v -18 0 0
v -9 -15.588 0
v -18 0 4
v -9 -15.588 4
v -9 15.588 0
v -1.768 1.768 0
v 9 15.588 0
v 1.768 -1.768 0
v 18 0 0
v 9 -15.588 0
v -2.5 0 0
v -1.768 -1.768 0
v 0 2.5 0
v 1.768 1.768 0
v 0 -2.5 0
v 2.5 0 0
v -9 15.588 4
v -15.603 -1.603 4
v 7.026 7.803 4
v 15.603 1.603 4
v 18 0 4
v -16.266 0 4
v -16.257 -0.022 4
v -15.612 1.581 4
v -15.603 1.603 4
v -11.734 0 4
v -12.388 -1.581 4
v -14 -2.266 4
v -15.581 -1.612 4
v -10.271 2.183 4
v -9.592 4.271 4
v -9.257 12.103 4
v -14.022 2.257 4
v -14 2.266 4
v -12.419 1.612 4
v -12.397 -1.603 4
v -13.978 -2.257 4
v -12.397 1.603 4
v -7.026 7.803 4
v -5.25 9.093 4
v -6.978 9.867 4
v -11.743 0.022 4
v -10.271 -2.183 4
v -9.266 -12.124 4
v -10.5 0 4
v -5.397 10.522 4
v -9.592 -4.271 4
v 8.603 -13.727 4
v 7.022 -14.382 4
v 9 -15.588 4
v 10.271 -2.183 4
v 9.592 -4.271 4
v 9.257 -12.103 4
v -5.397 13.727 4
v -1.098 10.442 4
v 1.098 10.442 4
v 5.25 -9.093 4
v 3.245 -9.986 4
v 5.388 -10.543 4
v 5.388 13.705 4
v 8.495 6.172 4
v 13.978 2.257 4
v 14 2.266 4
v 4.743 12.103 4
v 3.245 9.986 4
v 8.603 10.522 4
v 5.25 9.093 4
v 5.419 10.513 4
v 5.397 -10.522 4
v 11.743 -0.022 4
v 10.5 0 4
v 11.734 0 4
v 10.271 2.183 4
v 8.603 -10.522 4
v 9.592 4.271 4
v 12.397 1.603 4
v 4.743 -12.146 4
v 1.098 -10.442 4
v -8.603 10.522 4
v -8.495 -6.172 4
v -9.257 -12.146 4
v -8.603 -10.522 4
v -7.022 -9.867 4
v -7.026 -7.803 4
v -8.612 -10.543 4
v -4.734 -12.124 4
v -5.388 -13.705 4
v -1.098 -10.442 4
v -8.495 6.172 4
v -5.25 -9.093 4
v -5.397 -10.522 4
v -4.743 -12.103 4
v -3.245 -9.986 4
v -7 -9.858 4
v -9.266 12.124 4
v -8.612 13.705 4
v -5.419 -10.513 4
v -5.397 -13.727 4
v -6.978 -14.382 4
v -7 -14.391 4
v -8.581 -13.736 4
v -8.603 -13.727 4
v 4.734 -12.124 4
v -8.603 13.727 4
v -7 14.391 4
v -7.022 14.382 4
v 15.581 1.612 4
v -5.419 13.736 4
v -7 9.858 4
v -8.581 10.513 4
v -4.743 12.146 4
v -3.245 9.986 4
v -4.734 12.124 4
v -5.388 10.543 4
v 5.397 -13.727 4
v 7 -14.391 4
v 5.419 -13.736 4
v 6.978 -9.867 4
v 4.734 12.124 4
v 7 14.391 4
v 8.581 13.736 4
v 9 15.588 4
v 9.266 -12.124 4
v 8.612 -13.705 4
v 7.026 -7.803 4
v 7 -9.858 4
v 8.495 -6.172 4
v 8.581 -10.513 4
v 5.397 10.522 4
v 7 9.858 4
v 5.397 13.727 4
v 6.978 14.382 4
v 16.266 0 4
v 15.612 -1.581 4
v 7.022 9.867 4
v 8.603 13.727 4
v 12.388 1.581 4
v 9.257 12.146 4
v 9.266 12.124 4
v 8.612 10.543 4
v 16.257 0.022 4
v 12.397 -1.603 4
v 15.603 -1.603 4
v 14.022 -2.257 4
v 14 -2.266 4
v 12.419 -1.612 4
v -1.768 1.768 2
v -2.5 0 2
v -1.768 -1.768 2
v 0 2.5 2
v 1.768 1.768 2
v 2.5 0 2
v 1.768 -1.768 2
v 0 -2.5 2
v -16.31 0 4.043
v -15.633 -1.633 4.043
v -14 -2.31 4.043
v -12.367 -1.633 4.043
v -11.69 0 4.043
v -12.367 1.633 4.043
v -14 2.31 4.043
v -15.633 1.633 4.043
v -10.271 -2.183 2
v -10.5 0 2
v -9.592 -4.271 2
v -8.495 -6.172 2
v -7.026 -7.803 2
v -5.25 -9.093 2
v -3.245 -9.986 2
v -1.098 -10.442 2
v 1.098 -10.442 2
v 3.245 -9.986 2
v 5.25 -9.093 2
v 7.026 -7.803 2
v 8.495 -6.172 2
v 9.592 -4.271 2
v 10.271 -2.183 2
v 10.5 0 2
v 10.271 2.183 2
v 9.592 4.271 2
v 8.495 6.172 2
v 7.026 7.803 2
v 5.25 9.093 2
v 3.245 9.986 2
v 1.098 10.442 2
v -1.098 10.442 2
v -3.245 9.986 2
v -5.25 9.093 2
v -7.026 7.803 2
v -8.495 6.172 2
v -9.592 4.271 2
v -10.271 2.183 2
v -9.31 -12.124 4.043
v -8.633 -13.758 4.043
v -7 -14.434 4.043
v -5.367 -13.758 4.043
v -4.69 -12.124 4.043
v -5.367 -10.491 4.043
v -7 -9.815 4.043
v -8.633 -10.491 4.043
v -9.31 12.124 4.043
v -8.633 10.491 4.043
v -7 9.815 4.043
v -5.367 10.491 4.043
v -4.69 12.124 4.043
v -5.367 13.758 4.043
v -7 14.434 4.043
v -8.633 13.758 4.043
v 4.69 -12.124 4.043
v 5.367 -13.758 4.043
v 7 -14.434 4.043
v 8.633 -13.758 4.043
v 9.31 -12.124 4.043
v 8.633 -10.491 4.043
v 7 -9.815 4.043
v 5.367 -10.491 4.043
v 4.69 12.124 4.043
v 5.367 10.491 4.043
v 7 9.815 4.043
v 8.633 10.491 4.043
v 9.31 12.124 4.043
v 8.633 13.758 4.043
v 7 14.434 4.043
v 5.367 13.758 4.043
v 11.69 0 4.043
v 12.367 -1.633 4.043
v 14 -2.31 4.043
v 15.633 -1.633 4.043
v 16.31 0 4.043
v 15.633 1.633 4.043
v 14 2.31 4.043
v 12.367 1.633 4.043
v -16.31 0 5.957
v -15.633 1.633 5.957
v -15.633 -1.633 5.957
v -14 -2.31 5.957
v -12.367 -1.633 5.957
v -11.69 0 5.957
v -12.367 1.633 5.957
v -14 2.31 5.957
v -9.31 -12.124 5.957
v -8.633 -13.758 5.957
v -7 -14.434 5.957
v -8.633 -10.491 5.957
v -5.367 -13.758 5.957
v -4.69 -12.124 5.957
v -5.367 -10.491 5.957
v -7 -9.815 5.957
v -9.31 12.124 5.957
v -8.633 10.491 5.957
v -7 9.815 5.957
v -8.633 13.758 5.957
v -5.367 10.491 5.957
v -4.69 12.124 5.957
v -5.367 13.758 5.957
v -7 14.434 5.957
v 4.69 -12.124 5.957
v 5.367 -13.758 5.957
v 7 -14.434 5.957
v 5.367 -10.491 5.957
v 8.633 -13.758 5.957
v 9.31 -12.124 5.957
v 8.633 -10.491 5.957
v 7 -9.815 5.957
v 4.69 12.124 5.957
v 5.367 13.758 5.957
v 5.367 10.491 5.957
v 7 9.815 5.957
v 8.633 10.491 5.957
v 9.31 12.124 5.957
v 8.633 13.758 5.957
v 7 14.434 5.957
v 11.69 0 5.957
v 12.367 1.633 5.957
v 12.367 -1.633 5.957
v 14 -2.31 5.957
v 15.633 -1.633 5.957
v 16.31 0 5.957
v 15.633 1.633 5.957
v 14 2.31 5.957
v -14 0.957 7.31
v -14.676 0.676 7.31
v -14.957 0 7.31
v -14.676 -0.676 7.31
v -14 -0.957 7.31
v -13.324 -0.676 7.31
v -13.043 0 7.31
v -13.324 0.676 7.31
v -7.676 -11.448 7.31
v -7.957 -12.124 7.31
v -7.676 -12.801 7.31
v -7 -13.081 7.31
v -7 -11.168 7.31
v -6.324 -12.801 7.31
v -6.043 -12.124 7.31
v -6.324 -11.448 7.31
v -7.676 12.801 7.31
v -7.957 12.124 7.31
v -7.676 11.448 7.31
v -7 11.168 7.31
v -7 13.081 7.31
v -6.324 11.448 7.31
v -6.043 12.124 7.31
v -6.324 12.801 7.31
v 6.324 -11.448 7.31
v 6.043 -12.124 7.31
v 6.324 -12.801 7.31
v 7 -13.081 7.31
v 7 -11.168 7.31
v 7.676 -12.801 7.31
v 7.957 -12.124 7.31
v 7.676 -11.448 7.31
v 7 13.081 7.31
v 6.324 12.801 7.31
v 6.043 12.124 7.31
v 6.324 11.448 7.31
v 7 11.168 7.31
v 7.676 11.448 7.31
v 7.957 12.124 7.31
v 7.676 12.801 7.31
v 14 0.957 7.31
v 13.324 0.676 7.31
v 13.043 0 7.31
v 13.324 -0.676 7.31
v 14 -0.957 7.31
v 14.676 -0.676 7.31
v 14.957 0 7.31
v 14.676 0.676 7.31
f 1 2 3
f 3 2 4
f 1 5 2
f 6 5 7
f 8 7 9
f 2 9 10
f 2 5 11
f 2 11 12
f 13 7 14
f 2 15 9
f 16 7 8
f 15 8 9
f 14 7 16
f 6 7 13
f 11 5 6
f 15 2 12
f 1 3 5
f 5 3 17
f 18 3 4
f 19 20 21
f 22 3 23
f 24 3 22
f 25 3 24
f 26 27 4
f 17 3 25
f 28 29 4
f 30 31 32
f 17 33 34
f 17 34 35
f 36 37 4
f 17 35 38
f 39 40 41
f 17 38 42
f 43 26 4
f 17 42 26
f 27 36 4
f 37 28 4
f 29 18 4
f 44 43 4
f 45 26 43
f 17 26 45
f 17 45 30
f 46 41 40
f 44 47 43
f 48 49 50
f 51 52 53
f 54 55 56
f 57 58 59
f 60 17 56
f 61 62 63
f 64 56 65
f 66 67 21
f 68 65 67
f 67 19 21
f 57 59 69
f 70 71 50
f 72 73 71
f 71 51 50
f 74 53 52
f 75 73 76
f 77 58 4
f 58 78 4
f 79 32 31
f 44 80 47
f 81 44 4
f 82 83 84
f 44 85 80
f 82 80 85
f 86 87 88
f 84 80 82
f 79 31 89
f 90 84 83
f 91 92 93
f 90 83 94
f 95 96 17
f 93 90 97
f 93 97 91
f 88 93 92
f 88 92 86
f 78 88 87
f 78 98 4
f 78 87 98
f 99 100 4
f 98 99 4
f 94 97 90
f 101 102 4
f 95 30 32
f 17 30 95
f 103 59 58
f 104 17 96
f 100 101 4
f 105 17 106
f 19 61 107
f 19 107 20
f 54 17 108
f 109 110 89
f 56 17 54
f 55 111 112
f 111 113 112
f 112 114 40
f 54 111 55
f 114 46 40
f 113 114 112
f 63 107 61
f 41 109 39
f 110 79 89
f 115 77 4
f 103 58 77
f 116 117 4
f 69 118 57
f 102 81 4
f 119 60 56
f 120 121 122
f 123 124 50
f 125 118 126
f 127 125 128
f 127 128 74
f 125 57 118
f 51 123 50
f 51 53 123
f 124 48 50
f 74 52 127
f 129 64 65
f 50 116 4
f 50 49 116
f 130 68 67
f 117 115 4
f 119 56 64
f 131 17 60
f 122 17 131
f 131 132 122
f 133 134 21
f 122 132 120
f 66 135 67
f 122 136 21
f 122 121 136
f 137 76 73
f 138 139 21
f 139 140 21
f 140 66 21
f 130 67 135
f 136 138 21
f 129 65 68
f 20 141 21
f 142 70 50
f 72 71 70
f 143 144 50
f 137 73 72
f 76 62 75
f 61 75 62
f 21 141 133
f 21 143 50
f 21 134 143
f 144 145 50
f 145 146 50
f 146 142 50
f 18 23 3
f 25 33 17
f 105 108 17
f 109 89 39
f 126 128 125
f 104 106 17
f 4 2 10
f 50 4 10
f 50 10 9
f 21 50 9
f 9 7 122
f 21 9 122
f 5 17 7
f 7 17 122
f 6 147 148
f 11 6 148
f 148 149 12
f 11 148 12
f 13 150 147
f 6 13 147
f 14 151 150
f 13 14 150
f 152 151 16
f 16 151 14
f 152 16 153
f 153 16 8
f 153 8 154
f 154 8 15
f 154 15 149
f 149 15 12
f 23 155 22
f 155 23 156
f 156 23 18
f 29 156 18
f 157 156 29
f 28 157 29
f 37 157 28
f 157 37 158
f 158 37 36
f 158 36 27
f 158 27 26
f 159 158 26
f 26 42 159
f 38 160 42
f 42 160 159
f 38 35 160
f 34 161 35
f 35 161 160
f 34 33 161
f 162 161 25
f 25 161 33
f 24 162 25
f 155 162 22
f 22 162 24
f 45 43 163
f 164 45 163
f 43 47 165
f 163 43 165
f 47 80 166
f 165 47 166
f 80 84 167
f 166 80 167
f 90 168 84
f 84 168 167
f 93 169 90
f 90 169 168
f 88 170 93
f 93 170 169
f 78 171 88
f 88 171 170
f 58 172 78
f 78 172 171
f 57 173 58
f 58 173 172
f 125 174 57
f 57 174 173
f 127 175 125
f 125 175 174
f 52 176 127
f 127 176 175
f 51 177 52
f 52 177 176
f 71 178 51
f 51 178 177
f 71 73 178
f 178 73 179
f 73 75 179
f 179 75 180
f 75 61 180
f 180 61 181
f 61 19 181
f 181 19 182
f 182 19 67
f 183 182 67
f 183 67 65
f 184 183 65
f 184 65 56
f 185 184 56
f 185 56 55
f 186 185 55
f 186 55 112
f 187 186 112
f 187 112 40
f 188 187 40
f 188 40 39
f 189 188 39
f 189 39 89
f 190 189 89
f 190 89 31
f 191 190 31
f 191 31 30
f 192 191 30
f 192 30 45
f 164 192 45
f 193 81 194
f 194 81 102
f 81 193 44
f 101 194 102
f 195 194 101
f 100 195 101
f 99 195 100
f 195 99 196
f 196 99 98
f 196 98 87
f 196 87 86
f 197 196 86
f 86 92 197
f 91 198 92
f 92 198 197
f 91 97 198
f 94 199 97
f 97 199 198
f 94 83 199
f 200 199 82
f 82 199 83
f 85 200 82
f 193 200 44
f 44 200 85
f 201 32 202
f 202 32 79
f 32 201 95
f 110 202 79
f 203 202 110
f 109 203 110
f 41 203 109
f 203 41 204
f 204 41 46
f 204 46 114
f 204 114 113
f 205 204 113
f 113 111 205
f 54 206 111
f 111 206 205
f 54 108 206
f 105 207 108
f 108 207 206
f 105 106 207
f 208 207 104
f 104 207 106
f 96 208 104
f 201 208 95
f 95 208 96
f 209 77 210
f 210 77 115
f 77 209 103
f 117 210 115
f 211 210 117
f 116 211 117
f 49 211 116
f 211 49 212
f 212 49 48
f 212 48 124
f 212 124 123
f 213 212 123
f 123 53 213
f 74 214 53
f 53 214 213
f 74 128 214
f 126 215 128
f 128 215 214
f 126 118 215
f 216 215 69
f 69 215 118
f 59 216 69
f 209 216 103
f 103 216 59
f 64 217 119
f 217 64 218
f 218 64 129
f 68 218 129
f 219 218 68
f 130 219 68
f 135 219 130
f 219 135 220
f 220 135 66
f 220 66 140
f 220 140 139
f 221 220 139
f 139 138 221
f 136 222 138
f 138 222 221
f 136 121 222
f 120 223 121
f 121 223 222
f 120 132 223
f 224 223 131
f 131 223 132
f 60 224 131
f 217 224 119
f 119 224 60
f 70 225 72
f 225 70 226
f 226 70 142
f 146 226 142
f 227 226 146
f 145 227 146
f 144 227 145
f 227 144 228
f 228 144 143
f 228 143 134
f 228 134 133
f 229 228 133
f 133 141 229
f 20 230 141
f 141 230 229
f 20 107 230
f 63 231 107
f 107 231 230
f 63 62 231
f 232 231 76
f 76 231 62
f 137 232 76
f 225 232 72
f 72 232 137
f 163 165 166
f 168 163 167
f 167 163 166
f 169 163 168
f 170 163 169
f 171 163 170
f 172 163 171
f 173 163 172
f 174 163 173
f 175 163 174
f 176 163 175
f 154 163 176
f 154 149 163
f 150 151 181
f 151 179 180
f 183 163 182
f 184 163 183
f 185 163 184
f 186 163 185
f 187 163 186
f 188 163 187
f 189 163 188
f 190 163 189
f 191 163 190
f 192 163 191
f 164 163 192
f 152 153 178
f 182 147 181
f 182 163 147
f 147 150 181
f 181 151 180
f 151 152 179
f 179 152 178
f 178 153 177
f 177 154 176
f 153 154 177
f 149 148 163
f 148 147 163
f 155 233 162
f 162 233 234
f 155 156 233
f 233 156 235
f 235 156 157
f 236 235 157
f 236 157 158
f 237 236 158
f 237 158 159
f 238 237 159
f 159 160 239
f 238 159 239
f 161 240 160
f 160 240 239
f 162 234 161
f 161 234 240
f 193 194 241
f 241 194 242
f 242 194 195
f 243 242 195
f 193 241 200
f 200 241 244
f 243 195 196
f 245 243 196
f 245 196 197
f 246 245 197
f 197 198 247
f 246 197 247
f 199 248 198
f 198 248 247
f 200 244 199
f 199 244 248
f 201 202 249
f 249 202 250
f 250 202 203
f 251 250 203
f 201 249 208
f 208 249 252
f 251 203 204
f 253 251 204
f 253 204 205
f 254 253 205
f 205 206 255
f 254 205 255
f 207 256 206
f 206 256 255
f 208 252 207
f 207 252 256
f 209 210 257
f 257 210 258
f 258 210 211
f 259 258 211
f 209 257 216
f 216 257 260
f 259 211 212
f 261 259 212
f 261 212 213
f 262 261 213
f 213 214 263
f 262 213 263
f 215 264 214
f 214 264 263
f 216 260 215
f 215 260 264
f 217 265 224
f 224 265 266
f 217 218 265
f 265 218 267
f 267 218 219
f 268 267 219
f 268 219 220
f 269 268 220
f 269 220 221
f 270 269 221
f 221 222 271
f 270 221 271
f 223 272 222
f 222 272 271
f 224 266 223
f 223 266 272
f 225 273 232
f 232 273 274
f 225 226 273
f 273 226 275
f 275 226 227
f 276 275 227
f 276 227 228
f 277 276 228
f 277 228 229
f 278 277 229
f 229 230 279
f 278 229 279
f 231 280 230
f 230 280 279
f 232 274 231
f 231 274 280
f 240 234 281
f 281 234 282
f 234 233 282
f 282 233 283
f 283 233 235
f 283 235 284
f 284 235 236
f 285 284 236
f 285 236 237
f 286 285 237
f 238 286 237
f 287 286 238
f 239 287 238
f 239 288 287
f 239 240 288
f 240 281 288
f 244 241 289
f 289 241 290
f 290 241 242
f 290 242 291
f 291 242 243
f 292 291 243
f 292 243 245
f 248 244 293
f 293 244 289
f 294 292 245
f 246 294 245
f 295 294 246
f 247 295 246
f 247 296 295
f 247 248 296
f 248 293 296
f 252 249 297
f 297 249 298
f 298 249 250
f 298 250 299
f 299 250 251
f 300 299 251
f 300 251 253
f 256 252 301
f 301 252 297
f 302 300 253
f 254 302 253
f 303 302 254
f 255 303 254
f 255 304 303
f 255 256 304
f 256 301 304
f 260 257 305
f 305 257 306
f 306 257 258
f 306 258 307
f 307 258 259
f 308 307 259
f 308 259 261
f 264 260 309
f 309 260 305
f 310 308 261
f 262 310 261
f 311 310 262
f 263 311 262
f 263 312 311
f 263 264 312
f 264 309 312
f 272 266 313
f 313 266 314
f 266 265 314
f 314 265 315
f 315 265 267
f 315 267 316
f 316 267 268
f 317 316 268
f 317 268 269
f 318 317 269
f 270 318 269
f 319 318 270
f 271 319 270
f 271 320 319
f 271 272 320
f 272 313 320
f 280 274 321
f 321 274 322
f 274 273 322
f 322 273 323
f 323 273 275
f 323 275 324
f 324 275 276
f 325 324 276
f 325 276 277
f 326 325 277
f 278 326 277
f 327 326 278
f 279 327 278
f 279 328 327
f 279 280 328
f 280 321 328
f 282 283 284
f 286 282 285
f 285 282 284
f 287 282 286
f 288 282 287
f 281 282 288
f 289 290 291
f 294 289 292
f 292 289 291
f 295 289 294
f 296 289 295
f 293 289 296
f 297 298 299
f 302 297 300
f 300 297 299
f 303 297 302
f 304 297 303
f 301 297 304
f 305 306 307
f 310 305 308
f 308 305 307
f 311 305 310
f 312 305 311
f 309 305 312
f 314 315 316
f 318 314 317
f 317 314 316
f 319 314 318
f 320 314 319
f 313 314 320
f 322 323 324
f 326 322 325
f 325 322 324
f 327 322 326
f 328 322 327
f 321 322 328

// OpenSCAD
module effector() {
	r = 18;
	a = [r * cos(0), r * sin(0)];
	b = [r * cos(60), r * sin(60)];
	c = [r * cos(120), r * sin(120)];
	d = [r * cos(180), r * sin(180)];
	e = [r * cos(240), r * sin(240)];
	f = [r * cos(300), r * sin(300)];

	difference() {
		linear_extrude(height=4) polygon([a,b,c,d,e,f]);
		translate([0, 0, -0.5]) cylinder(r=2.5, h=5);
		translate([0, 0, 2]) cylinder(r=21/2, h=2);
	}

	r0 = r-4;
	a0 = [r0 * cos(0), r0 * sin(0),5];
	b0 = [r0 * cos(60), r0 * sin(60),5];
	c0 = [r0 * cos(120), r0 * sin(120),5];
	d0 = [r0 * cos(180), r0 * sin(180),5];
	e0 = [r0 * cos(240), r0 * sin(240),5];
	f0 = [r0 * cos(300), r0 * sin(300),5];
	translate(a0) sphere(r=2.5);
	translate(b0) sphere(r=2.5);
	translate(c0) sphere(r=2.5);
	translate(d0) sphere(r=2.5);
	translate(e0) sphere(r=2.5);
	translate(f0) sphere(r=2.5);
}

effector();
